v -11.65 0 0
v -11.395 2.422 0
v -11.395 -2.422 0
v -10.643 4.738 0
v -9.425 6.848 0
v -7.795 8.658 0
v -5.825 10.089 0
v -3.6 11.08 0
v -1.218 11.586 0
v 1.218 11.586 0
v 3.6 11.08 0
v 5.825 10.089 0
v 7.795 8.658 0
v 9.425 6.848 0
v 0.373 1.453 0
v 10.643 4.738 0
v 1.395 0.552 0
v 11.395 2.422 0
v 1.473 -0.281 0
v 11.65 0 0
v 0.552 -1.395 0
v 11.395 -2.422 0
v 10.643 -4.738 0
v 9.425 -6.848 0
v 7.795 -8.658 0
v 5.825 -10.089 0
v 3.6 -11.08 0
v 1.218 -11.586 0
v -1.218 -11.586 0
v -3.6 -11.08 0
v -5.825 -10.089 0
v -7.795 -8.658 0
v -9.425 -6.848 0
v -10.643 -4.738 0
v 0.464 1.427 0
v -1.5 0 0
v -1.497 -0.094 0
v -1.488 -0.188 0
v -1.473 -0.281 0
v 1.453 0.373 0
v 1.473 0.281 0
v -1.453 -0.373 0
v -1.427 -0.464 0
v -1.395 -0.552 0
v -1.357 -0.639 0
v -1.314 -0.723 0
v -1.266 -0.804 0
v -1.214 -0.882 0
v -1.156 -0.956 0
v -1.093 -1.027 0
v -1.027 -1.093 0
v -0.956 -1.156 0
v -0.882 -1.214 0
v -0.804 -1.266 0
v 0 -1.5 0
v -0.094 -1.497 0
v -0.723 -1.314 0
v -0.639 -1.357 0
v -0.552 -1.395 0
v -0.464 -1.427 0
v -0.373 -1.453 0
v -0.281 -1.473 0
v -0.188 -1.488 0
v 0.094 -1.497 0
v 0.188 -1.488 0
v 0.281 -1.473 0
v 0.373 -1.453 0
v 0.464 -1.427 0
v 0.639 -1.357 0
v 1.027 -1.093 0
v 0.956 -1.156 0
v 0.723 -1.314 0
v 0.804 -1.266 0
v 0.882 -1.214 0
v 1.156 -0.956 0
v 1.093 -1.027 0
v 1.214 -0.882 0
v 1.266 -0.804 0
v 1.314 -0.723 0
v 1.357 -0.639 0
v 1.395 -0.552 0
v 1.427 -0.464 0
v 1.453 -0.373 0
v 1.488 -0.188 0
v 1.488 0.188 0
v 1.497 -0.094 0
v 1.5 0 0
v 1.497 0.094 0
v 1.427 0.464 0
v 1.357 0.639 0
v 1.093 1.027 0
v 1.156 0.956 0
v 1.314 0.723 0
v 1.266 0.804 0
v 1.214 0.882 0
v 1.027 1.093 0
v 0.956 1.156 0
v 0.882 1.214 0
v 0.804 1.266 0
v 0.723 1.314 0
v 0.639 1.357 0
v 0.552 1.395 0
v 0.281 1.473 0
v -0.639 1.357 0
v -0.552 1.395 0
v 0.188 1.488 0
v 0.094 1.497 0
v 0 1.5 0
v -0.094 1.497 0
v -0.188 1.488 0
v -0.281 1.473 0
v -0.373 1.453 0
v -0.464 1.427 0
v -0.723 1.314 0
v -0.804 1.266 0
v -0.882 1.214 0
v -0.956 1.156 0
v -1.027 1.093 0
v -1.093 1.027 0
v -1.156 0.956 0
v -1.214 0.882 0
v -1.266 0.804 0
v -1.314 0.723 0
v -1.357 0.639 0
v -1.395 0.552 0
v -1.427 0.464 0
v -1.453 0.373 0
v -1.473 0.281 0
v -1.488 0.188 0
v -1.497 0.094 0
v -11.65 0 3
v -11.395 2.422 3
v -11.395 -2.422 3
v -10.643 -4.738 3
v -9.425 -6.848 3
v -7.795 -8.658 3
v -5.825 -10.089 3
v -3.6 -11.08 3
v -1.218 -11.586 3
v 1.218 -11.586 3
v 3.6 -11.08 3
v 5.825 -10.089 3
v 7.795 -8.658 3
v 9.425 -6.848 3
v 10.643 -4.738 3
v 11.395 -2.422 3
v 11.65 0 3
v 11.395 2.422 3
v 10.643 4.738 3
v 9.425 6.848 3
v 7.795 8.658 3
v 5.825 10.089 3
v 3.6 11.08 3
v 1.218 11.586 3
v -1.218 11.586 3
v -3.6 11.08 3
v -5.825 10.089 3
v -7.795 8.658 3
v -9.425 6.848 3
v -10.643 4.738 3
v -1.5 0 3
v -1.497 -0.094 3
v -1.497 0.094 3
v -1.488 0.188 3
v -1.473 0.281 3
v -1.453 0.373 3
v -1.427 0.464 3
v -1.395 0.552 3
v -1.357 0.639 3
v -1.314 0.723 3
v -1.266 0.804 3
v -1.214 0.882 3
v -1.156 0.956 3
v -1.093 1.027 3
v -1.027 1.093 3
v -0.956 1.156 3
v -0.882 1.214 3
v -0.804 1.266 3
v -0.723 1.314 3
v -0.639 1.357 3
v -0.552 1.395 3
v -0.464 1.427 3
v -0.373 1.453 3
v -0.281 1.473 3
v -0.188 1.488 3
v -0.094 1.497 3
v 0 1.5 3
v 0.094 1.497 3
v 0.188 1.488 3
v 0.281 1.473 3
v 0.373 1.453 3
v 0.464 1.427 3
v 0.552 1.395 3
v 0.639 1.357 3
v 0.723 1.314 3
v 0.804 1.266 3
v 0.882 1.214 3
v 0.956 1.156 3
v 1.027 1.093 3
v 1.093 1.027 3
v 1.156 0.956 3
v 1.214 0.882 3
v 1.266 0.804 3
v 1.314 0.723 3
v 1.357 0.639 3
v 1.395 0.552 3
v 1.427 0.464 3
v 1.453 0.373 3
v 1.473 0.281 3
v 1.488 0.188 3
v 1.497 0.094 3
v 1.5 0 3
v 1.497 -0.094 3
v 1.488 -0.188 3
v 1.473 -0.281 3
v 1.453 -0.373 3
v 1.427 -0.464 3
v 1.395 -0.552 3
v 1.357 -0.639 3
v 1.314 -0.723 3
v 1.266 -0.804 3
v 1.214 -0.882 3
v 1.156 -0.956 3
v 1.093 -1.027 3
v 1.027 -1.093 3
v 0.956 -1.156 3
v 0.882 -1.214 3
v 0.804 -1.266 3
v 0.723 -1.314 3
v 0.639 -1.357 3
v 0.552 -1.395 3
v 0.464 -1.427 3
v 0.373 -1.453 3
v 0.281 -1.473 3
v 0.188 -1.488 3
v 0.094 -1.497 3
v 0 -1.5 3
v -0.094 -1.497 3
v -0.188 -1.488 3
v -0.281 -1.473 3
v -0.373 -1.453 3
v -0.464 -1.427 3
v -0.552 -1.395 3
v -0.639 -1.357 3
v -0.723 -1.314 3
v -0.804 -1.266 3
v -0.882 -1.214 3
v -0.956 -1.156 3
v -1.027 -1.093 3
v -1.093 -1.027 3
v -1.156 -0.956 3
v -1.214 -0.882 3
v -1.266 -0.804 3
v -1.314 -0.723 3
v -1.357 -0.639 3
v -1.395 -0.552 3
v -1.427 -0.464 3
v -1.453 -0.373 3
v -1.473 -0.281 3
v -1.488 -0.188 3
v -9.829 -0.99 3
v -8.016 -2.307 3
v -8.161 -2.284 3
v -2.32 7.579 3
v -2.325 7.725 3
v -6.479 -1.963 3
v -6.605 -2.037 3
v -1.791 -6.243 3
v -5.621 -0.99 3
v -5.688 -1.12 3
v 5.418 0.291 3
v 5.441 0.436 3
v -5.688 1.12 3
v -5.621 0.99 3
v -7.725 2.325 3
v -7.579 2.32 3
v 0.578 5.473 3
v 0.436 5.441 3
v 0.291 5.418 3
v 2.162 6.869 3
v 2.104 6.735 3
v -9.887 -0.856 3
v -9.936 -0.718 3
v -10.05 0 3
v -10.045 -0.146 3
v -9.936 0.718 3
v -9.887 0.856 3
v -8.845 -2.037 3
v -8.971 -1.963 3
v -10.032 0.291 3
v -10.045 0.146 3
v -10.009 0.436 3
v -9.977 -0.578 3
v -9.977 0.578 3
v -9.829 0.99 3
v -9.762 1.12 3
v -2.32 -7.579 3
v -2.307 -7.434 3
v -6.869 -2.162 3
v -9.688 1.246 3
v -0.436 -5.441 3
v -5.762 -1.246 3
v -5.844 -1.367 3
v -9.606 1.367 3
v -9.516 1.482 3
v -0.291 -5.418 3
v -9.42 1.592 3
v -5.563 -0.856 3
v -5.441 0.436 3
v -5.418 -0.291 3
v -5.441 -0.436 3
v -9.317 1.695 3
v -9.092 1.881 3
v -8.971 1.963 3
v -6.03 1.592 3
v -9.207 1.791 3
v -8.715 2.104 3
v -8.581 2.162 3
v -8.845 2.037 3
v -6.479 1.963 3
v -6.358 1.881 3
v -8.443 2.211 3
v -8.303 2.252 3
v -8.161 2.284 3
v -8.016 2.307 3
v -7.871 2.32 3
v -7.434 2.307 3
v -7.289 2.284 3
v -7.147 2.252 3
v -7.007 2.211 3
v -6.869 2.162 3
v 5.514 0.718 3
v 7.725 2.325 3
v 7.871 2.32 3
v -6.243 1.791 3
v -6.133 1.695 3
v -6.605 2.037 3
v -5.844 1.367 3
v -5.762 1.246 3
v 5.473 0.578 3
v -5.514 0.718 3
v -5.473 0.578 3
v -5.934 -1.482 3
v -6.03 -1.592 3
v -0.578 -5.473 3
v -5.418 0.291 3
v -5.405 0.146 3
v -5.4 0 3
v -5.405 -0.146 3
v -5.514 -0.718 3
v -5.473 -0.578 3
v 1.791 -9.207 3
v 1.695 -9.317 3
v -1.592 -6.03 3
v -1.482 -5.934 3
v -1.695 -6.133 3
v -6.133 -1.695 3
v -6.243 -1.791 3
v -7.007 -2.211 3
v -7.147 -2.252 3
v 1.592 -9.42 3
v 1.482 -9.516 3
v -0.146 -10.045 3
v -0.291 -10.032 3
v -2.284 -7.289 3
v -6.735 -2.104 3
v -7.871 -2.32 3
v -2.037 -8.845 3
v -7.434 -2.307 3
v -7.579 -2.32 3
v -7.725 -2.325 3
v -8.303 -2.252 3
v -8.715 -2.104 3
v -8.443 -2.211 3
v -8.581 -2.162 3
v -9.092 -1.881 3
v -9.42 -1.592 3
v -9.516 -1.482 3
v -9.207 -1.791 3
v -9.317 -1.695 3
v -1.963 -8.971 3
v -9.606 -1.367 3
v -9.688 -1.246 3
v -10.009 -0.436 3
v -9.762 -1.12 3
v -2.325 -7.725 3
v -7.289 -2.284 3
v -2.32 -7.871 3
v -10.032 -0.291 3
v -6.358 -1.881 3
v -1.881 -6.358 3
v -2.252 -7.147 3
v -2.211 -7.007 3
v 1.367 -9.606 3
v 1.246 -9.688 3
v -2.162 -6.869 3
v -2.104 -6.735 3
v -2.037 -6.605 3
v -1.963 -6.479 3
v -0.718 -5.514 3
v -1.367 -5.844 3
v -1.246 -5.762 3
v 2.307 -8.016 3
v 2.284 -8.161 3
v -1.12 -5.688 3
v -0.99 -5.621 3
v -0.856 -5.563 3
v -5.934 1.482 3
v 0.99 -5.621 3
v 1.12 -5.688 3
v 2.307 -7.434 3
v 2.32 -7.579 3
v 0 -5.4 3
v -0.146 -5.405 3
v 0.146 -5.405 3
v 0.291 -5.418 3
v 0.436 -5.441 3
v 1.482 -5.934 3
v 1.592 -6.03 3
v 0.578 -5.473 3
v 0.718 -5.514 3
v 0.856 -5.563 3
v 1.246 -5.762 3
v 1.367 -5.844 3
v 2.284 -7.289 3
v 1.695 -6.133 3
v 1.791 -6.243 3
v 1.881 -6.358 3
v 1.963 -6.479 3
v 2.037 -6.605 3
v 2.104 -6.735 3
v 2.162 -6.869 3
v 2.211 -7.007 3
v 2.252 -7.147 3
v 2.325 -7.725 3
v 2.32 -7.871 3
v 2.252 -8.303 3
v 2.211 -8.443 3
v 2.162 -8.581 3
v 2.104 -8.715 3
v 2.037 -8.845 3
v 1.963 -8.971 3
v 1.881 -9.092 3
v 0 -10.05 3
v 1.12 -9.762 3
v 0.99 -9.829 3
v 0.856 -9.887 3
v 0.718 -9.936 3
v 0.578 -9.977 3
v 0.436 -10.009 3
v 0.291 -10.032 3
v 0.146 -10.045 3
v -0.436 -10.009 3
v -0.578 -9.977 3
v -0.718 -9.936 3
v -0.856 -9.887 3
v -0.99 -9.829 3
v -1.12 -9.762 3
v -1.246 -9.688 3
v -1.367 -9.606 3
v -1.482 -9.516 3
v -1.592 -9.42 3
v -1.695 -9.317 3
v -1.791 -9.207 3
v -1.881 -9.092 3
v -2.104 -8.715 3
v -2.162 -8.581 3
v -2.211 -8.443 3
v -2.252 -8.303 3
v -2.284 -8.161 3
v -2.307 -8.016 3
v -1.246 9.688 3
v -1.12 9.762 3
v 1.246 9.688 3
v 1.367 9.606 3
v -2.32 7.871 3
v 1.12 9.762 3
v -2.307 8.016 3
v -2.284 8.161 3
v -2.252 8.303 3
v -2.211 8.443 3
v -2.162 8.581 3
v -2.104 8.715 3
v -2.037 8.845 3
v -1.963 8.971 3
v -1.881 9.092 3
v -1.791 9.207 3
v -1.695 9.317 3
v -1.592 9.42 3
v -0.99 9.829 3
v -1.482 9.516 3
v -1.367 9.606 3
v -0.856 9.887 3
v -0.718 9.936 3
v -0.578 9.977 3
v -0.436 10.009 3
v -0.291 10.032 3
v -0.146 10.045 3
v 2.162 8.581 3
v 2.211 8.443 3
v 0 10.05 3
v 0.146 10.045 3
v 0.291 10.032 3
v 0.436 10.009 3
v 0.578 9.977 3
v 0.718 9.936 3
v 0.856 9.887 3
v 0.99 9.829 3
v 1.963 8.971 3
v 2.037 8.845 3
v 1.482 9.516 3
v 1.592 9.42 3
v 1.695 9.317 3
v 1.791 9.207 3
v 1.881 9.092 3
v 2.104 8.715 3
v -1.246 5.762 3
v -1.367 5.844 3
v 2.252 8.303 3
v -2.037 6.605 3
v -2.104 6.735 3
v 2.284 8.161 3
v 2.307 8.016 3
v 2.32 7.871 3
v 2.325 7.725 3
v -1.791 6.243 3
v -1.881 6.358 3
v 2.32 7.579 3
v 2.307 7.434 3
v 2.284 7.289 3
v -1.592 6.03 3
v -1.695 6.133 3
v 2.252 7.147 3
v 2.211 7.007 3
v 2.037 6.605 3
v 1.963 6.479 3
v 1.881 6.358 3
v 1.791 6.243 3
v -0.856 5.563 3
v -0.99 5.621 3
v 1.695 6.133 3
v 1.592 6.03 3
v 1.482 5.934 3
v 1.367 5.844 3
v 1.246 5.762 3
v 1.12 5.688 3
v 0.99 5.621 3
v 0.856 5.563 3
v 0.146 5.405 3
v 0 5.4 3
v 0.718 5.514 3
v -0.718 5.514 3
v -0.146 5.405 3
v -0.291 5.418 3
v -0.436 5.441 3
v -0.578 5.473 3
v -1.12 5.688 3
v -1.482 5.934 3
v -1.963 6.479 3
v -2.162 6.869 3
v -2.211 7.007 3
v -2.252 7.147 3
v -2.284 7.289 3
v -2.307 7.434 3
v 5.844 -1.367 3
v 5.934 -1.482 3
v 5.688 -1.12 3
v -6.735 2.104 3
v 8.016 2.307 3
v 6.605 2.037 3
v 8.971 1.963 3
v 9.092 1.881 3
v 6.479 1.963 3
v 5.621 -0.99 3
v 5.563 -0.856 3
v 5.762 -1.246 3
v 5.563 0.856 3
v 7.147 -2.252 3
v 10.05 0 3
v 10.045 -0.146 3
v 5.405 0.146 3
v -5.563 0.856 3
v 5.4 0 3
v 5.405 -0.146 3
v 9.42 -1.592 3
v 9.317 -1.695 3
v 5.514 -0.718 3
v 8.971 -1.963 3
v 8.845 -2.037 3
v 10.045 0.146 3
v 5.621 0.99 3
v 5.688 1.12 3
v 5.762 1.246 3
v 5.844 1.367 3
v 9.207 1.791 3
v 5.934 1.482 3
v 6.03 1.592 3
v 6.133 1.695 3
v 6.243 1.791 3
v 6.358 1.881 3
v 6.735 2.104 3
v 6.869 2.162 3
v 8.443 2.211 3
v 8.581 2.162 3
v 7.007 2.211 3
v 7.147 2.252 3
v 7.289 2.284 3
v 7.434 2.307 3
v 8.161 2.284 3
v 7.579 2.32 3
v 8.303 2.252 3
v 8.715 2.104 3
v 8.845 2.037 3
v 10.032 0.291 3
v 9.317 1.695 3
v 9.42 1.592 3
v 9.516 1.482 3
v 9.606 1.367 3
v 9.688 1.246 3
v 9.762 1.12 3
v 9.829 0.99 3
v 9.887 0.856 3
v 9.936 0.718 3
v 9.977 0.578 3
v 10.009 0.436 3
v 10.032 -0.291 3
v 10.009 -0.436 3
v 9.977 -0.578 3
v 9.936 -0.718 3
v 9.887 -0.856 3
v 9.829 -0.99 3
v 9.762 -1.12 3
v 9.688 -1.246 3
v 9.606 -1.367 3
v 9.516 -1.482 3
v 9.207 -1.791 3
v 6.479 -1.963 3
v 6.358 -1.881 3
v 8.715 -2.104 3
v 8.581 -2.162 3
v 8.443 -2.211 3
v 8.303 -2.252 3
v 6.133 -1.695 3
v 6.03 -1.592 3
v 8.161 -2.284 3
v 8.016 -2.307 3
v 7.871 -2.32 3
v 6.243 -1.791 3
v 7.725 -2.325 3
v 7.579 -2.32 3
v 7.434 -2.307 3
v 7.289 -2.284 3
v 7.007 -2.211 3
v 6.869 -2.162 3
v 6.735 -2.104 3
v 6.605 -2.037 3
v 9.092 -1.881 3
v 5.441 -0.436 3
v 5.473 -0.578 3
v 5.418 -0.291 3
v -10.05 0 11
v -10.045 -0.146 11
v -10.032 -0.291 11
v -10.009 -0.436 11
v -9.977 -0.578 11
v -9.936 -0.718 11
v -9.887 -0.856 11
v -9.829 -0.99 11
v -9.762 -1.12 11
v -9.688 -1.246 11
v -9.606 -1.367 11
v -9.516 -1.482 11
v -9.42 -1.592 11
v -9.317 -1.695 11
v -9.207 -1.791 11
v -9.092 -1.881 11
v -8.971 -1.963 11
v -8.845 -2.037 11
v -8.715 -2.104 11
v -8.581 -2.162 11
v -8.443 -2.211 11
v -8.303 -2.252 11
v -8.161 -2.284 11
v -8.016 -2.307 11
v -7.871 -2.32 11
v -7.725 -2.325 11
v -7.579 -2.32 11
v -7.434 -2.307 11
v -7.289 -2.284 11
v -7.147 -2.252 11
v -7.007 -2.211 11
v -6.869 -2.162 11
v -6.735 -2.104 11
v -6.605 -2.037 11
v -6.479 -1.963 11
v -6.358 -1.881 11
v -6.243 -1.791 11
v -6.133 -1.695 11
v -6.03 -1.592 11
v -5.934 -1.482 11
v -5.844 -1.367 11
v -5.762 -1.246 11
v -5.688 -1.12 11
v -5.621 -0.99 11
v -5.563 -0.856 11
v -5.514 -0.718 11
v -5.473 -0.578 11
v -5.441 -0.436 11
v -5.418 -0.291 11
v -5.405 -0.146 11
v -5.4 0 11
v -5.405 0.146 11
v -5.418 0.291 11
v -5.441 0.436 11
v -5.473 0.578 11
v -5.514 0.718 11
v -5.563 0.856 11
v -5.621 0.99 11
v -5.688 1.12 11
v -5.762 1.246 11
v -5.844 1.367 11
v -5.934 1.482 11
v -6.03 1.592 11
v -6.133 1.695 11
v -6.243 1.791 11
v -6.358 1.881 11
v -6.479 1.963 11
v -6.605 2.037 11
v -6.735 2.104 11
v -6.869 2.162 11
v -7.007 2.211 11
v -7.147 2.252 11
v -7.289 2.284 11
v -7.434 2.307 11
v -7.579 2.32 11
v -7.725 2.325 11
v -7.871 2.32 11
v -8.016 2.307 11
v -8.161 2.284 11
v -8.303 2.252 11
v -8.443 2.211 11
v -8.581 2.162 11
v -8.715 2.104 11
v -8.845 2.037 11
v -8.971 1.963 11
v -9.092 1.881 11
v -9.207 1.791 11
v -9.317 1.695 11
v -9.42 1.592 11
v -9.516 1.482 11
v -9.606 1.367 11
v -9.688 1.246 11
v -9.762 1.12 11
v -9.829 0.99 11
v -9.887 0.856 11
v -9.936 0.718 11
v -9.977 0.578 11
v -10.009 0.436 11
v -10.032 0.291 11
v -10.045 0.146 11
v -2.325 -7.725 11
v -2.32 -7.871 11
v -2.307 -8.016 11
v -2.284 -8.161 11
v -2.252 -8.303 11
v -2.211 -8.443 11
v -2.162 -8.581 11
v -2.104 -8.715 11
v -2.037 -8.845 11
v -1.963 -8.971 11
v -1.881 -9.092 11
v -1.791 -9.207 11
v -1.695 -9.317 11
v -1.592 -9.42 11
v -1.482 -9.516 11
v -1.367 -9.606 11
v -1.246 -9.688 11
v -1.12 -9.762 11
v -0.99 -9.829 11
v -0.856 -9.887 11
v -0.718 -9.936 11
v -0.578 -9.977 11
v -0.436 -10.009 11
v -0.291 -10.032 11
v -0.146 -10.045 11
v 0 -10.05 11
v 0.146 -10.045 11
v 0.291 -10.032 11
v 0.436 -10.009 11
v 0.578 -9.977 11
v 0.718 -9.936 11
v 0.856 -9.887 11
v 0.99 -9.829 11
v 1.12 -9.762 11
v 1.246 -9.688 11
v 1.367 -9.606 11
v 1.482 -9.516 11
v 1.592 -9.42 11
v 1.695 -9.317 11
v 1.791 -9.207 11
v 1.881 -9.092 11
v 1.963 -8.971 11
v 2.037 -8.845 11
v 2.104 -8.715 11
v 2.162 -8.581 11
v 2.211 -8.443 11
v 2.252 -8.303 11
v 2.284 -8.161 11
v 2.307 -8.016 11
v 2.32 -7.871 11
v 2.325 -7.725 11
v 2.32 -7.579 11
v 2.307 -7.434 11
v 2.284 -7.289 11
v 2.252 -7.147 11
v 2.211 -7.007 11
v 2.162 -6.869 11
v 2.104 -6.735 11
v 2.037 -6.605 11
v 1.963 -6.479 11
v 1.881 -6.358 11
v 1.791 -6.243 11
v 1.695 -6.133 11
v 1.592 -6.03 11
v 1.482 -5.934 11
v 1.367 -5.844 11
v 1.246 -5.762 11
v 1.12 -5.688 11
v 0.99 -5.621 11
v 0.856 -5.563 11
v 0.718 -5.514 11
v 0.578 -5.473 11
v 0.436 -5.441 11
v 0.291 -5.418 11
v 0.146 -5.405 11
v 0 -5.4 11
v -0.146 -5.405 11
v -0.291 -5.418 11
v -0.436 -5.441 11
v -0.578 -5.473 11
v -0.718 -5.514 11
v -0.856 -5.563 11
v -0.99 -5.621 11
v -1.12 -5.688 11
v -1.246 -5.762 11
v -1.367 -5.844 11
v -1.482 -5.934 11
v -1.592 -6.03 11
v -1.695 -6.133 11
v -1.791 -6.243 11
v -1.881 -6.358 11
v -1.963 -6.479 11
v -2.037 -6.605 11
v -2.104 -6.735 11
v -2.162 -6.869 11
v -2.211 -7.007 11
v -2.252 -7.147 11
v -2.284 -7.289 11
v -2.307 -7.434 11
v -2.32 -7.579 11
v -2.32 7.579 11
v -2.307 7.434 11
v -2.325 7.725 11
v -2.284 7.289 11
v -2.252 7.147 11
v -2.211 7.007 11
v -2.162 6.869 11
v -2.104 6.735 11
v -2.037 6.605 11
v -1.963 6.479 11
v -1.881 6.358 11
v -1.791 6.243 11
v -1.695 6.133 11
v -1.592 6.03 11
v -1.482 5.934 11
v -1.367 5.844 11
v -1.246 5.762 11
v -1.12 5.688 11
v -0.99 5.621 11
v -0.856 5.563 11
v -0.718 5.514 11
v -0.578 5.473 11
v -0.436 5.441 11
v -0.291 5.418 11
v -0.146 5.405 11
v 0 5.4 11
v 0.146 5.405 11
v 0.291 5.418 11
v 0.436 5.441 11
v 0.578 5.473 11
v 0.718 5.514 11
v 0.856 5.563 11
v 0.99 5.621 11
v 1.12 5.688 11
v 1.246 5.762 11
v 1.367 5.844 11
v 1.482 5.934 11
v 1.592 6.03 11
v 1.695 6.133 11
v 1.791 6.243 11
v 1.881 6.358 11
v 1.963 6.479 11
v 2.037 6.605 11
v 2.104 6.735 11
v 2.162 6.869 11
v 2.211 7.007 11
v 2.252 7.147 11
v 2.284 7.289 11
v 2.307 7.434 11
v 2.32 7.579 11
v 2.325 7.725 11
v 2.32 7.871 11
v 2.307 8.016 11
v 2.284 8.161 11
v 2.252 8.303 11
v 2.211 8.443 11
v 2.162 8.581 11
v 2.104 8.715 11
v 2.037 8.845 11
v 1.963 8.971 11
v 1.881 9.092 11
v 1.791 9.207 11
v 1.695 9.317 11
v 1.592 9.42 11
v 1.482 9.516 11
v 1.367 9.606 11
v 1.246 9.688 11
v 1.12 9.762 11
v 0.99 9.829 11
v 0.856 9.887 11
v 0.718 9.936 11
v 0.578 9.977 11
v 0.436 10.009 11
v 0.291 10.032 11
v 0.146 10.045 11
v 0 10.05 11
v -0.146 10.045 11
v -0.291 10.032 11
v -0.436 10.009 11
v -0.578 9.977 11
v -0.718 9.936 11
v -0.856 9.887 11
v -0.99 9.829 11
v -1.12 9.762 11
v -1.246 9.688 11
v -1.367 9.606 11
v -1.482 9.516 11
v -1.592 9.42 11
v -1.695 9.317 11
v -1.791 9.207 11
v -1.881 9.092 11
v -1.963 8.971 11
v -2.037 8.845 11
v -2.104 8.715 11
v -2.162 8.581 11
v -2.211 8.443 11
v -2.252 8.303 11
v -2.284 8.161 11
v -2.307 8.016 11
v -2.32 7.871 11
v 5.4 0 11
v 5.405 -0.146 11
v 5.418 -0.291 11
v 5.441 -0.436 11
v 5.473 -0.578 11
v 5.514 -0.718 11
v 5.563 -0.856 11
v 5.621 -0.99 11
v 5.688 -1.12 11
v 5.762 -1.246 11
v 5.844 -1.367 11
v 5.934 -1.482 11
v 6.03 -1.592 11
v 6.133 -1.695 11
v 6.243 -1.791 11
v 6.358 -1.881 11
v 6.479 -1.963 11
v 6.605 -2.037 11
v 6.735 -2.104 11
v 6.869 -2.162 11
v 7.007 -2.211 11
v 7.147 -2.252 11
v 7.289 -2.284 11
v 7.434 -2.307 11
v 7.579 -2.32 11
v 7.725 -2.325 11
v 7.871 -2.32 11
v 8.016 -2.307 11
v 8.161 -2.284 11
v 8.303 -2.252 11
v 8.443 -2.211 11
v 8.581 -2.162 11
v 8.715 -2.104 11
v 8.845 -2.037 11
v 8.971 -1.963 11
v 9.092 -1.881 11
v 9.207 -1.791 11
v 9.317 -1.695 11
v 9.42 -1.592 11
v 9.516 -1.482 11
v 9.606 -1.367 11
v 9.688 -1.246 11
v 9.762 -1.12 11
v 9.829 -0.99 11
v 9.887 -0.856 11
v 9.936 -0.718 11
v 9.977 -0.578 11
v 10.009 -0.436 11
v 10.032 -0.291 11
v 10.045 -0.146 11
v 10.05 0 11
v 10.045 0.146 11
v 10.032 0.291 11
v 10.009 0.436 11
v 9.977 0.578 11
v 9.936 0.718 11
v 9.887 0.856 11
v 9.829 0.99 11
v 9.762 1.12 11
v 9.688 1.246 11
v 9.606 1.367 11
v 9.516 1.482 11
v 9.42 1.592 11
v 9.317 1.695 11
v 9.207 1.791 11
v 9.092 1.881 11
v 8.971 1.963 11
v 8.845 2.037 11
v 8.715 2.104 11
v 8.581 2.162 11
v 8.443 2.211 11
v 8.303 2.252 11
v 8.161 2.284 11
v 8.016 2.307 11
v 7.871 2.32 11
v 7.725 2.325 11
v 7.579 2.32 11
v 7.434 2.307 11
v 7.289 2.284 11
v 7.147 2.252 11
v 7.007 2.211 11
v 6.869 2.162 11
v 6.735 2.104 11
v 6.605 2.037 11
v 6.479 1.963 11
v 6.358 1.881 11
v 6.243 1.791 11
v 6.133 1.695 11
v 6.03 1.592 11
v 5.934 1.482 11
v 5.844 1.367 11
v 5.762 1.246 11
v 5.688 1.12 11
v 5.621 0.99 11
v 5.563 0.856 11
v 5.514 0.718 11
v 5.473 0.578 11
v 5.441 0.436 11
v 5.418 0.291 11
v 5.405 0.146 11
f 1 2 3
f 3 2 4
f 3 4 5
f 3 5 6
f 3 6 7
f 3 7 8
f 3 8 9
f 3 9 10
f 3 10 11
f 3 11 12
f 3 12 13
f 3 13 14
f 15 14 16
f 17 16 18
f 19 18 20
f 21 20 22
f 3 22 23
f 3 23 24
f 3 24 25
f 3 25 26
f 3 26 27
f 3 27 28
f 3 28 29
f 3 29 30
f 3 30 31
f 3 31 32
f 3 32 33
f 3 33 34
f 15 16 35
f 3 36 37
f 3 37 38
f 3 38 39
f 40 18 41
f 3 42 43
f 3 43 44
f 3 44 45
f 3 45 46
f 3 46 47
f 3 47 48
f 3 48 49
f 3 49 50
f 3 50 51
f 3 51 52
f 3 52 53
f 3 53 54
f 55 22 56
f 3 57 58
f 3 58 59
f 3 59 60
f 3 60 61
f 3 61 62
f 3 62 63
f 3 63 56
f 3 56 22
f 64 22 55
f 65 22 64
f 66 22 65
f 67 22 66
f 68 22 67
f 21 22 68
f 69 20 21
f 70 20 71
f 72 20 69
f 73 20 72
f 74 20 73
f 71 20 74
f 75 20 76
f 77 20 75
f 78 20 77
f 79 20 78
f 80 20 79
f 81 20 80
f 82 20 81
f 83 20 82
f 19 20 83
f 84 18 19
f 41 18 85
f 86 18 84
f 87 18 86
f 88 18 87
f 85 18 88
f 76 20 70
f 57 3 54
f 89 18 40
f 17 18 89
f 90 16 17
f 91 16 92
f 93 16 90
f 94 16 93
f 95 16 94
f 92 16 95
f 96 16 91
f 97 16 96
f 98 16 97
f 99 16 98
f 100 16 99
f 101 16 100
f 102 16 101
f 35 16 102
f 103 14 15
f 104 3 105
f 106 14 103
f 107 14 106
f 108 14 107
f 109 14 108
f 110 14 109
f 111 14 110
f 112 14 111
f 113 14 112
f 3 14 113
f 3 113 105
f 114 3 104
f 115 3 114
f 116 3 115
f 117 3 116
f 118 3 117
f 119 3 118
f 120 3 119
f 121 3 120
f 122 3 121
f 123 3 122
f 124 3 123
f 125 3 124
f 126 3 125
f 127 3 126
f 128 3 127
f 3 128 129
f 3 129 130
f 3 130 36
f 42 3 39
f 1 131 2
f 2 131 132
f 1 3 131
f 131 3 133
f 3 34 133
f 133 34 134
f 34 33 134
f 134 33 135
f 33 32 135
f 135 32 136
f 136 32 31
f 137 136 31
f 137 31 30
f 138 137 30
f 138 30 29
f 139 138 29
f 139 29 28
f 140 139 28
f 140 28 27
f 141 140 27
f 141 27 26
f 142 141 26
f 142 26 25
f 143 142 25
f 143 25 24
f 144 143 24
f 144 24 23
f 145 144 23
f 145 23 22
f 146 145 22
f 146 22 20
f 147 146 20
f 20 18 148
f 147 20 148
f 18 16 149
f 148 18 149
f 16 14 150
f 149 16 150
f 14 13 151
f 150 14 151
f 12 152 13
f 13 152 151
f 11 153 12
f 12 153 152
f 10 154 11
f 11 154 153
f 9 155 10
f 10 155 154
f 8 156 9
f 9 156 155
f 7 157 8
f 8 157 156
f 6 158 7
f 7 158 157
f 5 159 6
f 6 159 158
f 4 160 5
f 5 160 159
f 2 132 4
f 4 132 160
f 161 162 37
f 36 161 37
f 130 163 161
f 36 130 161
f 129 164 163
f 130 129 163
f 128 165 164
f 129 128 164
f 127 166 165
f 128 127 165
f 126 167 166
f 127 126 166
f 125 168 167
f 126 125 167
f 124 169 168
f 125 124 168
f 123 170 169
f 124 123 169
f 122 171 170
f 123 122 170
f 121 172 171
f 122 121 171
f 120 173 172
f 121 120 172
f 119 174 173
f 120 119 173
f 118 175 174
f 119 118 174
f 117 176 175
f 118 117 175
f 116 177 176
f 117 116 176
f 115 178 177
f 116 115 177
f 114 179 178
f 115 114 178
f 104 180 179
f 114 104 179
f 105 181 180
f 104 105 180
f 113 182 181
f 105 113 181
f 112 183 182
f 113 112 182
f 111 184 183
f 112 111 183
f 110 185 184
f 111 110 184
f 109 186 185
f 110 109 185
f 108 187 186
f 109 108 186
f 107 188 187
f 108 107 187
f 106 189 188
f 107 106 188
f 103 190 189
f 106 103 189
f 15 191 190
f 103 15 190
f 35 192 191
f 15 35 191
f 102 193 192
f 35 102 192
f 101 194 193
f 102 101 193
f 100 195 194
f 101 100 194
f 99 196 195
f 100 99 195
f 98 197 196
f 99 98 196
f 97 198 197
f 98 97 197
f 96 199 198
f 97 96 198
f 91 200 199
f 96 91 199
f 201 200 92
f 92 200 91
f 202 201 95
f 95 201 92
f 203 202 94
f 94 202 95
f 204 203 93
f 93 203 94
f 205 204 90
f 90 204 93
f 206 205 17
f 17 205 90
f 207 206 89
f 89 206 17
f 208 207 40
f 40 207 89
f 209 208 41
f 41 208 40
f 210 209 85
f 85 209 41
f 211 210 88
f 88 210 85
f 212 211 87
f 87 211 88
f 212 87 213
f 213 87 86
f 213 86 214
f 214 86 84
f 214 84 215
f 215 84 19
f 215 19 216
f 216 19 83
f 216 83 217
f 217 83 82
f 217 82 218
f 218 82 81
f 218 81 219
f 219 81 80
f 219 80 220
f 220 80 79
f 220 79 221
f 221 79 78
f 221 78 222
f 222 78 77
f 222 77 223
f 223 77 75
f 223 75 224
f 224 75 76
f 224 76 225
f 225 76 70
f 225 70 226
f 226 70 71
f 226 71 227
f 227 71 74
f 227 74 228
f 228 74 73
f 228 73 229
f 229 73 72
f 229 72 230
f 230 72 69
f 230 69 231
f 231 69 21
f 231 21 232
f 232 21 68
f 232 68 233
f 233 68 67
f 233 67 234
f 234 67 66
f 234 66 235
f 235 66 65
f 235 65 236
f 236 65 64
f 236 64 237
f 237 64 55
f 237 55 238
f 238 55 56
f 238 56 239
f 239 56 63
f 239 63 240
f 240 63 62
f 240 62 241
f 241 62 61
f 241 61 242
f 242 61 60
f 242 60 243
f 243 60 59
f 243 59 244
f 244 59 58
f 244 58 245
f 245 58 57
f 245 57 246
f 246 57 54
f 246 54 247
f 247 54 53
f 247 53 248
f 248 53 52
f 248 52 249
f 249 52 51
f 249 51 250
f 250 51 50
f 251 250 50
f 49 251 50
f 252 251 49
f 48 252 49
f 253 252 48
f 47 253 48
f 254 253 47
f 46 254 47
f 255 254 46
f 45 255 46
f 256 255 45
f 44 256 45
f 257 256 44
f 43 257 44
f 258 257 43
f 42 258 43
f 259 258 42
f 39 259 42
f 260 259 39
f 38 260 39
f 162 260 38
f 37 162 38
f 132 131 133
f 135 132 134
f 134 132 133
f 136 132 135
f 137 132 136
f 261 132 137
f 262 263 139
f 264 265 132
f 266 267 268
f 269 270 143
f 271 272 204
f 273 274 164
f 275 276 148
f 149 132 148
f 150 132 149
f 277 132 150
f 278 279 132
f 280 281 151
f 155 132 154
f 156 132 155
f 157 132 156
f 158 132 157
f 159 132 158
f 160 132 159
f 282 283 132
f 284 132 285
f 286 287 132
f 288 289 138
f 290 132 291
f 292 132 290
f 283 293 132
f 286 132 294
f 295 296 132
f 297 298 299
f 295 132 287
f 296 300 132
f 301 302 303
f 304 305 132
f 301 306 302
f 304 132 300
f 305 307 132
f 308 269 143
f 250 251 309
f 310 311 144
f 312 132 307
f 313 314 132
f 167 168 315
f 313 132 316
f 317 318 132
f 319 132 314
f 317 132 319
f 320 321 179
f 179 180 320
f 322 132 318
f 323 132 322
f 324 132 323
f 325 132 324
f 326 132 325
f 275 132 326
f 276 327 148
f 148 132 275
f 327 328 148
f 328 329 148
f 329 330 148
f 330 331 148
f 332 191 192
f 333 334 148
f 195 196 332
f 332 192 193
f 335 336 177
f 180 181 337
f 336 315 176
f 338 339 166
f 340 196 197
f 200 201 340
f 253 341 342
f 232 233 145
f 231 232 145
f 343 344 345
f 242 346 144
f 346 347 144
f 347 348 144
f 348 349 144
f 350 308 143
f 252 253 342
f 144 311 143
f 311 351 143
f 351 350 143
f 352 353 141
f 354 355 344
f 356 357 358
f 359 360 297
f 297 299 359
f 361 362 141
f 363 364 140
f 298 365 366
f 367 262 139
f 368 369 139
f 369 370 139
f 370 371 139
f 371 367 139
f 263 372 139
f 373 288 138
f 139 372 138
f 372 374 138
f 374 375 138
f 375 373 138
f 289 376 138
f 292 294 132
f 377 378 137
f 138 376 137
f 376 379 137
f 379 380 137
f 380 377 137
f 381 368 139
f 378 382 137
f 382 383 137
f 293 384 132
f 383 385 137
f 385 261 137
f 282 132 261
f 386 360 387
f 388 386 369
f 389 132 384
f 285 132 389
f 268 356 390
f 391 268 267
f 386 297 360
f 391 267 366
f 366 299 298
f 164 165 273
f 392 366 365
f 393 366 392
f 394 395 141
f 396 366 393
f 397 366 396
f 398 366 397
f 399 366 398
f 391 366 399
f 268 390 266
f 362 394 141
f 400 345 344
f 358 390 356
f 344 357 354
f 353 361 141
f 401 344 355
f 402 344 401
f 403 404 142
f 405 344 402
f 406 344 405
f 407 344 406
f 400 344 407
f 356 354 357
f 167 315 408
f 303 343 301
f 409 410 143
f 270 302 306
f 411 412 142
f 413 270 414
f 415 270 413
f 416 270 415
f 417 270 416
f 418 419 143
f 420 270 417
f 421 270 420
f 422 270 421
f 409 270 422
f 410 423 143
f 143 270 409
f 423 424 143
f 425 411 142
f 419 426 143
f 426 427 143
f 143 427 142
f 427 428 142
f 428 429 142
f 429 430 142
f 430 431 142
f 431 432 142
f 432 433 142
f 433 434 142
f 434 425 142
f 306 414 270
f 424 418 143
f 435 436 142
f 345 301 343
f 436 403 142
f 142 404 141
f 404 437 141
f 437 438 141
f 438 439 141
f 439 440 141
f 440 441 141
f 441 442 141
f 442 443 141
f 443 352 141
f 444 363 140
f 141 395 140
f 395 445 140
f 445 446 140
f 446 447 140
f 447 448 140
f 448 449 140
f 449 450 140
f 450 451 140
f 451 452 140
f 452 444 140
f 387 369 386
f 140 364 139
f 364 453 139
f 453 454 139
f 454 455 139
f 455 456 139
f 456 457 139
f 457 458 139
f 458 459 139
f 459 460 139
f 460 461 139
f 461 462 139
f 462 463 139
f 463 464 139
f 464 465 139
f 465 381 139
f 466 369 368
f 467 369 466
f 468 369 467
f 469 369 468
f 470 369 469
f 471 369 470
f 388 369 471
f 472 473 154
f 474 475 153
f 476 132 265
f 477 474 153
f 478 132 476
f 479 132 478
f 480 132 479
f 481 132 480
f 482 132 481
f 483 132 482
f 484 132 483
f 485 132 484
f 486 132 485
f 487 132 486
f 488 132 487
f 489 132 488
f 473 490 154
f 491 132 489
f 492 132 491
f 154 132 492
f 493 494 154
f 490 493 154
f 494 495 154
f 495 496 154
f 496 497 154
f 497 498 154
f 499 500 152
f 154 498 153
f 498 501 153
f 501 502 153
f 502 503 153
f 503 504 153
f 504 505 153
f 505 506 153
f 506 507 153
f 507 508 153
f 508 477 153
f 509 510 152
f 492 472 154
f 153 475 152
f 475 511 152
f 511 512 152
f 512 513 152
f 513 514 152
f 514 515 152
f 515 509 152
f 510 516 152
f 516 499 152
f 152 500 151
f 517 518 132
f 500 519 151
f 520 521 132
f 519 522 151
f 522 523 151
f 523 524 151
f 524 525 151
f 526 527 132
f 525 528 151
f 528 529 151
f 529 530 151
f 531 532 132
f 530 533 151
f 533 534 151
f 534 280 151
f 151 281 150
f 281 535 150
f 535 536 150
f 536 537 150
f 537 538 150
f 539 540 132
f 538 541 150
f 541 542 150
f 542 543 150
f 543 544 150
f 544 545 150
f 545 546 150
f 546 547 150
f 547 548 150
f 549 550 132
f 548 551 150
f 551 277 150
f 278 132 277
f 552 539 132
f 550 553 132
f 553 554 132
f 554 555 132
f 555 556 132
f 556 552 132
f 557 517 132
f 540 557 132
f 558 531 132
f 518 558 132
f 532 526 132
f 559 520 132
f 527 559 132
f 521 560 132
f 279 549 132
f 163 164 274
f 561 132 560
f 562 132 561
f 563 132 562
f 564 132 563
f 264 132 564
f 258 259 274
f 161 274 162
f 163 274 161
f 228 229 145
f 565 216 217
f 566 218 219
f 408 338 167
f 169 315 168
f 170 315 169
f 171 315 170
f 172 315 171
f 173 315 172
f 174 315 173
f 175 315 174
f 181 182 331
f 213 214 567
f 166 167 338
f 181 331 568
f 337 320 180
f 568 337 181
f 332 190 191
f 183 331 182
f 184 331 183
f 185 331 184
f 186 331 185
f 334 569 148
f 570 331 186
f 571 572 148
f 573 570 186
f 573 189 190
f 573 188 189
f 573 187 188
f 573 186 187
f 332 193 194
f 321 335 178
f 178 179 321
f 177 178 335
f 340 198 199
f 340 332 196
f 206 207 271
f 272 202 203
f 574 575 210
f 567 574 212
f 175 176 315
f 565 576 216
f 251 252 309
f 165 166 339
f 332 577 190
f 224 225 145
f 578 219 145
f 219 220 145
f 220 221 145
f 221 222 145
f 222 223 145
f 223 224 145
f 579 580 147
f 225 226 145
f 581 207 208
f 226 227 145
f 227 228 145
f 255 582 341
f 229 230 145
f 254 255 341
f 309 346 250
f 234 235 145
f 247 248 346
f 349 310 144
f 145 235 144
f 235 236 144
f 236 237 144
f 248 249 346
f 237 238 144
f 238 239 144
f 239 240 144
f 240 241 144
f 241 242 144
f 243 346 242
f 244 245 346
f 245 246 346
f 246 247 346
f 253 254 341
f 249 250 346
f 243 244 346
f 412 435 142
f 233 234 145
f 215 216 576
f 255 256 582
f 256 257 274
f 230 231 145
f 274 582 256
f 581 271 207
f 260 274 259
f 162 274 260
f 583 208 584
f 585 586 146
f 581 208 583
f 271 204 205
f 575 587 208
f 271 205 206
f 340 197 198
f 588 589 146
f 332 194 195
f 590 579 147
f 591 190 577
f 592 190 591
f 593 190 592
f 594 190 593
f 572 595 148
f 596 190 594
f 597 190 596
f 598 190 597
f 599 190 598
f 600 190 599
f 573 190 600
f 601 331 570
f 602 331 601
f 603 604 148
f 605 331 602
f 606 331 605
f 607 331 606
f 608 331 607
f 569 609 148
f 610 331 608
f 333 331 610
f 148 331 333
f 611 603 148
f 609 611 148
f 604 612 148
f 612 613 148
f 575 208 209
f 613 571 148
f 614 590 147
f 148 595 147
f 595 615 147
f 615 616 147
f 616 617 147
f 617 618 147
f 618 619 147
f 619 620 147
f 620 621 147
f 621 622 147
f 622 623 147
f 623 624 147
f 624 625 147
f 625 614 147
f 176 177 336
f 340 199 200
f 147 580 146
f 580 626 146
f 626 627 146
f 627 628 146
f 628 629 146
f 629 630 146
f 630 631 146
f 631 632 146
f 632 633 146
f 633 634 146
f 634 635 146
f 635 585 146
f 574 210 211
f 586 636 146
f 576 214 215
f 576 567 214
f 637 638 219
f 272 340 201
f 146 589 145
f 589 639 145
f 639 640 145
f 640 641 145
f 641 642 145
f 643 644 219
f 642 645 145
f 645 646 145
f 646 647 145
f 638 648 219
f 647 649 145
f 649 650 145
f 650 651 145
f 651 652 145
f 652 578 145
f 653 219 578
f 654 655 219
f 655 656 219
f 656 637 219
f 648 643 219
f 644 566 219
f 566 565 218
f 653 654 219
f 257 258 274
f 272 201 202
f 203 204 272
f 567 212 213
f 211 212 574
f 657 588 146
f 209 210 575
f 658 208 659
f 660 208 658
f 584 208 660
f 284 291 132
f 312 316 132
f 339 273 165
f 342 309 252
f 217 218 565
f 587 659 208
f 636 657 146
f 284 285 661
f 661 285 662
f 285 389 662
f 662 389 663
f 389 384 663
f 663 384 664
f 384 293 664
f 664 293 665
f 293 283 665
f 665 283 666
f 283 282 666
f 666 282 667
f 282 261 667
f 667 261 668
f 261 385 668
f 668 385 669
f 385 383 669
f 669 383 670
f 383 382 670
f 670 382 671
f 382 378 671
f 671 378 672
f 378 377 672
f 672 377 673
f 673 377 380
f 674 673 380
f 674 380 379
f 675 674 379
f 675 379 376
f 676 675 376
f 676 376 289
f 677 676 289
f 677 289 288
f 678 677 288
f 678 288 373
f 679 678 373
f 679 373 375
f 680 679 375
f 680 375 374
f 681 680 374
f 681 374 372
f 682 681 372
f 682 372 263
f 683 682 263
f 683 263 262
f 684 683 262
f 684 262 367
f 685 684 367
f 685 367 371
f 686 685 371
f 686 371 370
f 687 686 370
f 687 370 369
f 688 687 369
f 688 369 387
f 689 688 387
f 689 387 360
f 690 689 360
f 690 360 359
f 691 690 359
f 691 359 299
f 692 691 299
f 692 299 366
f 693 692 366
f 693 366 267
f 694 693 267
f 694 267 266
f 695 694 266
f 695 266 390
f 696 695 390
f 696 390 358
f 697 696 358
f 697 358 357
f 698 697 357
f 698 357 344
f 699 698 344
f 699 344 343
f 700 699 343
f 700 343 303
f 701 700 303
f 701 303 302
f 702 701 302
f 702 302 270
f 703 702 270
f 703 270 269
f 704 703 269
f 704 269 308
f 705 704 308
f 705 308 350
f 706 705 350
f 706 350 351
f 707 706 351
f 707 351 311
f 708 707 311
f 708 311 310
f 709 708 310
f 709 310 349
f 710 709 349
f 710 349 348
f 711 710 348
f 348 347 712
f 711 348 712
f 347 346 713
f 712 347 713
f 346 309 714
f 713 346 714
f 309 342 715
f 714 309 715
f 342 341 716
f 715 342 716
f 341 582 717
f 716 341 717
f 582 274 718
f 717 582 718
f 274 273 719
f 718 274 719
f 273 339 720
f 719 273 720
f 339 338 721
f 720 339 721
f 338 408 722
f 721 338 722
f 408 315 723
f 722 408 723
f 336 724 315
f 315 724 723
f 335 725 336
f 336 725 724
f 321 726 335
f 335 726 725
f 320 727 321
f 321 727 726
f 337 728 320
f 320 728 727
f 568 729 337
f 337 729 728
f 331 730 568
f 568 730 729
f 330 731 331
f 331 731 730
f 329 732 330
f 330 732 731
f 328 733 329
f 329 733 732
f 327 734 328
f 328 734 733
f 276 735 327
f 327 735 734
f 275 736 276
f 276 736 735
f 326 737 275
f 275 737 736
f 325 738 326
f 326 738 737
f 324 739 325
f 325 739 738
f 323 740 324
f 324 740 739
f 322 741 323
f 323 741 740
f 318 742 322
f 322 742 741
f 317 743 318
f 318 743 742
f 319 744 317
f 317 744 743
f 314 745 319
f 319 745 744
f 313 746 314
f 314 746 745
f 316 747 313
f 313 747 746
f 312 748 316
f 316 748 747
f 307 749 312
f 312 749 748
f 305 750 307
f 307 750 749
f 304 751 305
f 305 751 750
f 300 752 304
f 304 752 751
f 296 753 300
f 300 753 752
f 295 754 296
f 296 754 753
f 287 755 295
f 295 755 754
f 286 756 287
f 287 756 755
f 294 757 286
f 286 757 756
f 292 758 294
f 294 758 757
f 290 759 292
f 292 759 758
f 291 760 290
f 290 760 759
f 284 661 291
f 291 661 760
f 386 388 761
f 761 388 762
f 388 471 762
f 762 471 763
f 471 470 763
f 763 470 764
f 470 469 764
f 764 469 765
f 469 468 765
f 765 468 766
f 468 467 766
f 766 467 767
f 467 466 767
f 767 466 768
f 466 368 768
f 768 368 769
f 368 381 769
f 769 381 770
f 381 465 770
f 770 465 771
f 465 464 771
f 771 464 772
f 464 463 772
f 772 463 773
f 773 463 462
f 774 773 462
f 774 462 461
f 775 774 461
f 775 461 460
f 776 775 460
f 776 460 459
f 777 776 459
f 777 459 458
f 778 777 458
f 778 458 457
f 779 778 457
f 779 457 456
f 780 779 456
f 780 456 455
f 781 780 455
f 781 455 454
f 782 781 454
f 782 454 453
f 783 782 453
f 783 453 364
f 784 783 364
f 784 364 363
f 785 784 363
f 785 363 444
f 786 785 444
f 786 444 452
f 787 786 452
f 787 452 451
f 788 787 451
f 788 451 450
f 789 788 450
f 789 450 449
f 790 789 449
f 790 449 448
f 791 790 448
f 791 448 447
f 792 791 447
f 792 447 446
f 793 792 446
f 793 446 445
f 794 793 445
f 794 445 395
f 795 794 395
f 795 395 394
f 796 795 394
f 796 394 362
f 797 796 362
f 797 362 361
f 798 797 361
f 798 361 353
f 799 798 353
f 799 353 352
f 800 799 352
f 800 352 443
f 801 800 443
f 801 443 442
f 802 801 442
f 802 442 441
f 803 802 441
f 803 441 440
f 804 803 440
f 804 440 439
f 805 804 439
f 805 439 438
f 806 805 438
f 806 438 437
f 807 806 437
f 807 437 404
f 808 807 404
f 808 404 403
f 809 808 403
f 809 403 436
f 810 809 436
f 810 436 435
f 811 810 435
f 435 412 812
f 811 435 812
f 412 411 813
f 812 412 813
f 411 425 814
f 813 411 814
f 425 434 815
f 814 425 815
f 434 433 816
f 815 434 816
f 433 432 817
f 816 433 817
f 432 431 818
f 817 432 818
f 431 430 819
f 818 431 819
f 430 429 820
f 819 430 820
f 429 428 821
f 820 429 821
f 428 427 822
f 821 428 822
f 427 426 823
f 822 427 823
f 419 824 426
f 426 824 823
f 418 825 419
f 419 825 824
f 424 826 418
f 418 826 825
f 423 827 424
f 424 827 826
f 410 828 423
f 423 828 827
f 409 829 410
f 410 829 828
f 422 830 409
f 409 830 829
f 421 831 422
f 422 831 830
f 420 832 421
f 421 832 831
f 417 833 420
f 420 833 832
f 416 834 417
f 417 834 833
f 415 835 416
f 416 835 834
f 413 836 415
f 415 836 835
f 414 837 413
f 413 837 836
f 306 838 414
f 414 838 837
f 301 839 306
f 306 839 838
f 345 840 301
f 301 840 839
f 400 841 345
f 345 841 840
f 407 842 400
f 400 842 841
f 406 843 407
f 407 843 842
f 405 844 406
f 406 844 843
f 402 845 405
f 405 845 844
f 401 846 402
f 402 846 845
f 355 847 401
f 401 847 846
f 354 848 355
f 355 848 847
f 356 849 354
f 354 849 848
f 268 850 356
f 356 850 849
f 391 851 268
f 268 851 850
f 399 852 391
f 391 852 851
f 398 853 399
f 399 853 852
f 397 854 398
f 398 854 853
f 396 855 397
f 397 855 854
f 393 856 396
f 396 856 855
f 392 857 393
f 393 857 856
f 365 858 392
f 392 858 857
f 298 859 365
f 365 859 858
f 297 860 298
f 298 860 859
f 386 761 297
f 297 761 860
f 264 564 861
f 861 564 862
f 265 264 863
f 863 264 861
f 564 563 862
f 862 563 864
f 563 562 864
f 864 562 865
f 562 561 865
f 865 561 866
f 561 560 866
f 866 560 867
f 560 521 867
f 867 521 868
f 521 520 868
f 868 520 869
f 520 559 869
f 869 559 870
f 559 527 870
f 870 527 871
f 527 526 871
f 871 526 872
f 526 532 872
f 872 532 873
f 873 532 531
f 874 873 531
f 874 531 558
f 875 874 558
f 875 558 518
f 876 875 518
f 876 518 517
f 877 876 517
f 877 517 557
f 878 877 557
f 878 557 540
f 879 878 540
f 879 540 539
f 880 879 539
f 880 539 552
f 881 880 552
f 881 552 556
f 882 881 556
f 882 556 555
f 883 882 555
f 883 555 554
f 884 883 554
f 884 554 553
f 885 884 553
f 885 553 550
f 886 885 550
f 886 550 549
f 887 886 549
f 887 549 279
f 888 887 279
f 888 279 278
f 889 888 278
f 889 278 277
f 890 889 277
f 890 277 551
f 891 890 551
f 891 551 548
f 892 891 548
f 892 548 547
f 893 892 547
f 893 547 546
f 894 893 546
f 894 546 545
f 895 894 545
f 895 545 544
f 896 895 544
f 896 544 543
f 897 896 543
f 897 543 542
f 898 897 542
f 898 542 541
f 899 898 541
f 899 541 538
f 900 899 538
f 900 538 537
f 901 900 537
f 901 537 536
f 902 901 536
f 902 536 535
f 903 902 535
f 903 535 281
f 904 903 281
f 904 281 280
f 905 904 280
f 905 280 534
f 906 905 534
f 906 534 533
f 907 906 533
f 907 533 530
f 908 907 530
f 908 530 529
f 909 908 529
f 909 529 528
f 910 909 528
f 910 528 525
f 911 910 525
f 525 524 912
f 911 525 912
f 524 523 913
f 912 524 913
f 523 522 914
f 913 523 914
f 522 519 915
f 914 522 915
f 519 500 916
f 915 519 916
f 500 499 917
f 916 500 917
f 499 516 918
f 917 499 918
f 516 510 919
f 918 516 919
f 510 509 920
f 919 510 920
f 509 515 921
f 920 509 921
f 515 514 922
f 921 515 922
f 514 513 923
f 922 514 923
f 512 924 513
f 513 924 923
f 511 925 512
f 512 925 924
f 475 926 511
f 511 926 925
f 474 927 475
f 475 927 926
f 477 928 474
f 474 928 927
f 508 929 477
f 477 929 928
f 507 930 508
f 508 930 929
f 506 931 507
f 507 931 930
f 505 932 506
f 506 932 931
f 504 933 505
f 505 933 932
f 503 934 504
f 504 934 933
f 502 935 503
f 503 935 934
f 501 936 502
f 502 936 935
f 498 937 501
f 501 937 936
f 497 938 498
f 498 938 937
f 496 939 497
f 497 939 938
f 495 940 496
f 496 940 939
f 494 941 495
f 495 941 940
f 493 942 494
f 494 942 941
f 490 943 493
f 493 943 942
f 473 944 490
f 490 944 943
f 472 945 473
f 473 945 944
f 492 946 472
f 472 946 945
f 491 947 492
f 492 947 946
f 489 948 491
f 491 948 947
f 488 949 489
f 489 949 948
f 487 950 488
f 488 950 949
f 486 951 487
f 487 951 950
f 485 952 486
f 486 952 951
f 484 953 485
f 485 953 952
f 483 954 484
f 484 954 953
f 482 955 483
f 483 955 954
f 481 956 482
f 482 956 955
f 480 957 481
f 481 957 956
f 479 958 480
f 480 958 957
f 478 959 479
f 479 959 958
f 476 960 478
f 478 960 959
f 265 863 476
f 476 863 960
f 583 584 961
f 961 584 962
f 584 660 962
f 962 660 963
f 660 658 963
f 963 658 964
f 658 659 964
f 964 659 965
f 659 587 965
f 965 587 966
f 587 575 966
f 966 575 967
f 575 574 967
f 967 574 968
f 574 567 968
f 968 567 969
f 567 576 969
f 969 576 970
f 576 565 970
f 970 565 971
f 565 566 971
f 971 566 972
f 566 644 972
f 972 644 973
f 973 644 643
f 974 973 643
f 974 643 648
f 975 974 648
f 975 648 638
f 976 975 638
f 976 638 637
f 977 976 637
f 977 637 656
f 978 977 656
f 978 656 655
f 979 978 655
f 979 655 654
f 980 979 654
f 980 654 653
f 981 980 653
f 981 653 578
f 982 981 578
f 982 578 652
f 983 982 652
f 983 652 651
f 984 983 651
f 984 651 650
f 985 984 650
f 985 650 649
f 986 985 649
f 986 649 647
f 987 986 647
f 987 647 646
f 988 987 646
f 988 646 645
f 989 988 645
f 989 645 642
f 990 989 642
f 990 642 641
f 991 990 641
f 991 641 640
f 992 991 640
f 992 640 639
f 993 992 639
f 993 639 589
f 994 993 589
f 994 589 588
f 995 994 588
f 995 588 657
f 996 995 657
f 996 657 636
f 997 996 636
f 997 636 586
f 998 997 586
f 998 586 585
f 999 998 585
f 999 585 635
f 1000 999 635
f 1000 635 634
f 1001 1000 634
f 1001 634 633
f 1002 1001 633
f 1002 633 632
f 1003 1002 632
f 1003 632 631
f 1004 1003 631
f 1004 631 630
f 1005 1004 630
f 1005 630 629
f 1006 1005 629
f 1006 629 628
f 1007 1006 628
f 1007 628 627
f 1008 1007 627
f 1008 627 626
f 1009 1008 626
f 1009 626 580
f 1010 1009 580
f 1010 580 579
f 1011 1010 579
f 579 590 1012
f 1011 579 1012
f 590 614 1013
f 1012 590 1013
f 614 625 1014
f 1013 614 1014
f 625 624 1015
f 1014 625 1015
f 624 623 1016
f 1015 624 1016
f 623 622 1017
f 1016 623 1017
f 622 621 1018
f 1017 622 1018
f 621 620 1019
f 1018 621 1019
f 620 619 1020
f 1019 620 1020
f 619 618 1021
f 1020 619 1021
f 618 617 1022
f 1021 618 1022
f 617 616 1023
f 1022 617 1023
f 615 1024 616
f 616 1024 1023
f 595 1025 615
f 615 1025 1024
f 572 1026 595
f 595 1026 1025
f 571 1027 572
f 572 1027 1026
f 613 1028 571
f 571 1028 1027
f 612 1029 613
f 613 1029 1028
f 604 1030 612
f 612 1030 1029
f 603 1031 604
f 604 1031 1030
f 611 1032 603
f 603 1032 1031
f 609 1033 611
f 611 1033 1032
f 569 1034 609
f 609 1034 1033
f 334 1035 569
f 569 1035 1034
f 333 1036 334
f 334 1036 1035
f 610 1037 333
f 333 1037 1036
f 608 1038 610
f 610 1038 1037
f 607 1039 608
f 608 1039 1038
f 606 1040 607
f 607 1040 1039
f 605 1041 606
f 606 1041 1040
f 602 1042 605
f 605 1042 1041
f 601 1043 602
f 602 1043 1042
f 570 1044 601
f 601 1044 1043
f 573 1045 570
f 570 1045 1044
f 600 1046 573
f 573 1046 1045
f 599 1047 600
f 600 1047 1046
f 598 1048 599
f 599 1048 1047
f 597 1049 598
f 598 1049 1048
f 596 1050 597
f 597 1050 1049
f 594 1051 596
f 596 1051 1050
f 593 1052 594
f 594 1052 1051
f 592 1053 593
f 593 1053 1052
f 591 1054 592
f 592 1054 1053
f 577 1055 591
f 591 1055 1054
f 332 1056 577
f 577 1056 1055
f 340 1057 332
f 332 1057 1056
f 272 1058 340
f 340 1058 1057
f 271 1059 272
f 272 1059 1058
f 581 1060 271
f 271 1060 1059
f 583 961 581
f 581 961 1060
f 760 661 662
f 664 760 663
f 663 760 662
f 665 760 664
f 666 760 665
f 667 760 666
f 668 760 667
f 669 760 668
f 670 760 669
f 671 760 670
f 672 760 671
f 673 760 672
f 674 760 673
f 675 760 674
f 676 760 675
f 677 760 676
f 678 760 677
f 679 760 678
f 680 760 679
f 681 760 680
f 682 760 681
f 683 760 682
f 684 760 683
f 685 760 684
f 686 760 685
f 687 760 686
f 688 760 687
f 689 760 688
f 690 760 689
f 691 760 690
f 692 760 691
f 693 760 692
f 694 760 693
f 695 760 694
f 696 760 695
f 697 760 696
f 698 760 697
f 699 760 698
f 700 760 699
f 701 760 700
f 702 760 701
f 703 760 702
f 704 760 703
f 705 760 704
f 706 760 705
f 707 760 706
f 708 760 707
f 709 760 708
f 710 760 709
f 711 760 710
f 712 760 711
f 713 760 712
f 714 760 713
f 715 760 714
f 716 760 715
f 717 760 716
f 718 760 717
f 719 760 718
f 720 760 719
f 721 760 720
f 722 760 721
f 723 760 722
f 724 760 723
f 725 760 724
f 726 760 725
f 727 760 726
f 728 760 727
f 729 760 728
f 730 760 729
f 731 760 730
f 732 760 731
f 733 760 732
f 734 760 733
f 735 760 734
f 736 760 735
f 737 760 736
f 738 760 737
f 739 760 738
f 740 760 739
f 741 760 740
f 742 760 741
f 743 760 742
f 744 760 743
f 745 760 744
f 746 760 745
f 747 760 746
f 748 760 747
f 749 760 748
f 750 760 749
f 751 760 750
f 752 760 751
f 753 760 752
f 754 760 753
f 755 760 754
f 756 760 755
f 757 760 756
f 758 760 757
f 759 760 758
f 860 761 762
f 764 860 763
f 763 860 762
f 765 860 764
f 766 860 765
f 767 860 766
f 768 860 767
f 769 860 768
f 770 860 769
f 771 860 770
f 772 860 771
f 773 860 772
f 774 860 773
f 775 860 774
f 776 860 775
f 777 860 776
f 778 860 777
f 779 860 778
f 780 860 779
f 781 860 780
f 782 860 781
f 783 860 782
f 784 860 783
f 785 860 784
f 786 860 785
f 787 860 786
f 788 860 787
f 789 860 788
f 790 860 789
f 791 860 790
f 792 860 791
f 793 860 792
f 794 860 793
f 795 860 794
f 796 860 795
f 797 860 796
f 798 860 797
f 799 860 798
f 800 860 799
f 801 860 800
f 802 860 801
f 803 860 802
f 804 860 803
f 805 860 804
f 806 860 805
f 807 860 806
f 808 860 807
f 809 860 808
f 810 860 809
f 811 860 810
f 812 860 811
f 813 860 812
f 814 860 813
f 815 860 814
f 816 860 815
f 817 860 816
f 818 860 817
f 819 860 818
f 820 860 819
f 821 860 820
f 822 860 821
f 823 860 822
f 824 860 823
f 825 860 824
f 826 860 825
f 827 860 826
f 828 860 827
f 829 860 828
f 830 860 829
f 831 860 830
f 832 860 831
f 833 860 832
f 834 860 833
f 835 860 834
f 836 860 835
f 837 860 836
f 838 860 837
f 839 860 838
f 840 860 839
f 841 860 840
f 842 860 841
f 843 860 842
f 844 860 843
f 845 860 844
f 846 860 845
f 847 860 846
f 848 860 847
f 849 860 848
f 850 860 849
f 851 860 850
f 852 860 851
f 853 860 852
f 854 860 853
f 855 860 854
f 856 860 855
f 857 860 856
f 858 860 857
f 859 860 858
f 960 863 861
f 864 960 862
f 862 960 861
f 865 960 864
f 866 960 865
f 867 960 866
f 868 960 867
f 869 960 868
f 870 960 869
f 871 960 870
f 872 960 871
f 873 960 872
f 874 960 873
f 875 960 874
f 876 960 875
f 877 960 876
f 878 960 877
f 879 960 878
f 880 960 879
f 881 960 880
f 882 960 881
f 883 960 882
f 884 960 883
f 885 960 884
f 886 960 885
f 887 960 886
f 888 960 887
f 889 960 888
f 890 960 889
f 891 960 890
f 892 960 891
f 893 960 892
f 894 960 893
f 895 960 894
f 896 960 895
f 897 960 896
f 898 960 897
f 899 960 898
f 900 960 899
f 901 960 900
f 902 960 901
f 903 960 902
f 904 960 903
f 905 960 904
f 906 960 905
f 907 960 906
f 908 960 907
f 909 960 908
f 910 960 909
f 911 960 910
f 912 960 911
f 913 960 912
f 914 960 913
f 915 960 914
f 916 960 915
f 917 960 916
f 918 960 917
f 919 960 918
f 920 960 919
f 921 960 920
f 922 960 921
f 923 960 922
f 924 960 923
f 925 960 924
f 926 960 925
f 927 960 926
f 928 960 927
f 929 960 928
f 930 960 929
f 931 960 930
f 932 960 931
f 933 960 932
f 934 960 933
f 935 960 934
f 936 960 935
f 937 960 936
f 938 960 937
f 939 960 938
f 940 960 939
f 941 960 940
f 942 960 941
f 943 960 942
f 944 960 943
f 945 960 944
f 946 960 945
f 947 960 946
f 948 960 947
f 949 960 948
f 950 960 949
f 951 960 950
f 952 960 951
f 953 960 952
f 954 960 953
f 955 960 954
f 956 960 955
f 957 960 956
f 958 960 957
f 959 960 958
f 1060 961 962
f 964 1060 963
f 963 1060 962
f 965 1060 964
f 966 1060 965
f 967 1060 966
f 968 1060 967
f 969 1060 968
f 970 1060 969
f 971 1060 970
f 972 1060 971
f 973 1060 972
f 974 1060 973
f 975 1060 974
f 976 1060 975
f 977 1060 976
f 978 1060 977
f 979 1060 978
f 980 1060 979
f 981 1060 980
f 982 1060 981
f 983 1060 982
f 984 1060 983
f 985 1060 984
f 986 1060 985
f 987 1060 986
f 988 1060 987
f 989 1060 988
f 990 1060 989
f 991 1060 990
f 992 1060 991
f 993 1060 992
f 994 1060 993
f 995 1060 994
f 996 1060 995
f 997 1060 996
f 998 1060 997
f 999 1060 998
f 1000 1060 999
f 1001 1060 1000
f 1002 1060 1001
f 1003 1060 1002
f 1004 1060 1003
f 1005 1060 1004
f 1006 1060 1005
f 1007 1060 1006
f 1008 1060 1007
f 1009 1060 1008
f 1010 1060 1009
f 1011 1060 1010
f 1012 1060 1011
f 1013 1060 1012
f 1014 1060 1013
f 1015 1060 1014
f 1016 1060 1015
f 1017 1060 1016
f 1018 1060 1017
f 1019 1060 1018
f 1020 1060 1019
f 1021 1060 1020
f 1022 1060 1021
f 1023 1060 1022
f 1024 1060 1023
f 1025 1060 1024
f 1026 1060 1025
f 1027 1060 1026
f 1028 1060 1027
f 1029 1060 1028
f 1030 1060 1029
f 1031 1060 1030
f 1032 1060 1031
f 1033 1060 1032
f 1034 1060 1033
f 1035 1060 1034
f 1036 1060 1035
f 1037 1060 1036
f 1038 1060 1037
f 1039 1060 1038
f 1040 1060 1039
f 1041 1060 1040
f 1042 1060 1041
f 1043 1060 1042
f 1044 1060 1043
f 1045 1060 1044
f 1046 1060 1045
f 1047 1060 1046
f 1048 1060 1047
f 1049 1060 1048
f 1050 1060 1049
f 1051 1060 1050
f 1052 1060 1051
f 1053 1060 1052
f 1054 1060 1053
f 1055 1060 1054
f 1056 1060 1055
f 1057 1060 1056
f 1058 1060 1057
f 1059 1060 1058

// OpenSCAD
h_cylinder = 3;
h_peripherical_legs = 11;
radius_peripherical_legs = 2.325;
radius_central_hole = 1.5;
radius_cylinder = 11.65;
marginal_distance = 1.6;
per_leg_trans = radius_cylinder-radius_peripherical_legs-marginal_distance;

module motor_cap() {
	difference() {
		union() {
		// Main cylinder
		cylinder(h = h_cylinder, r = radius_cylinder, center = false);	

		// Peripherical legs
		translate([per_leg_trans, 0, 0]) color("black") cylinder(h = h_peripherical_legs, r = radius_peripherical_legs, center = false, $fn = 100);
		translate([-per_leg_trans, 0, 0]) color("black") cylinder(h = h_peripherical_legs, r = radius_peripherical_legs, center = false, $fn = 100);
		translate([0, per_leg_trans, 0]) color("black") cylinder(h = h_peripherical_legs, r = radius_peripherical_legs, center = false, $fn = 100);
		translate([0, -per_leg_trans, 0]) color("black") cylinder(h = h_peripherical_legs, r = radius_peripherical_legs, center = false, $fn = 100);
		}
		// Central hole
		cylinder(h = h_cylinder, r = radius_central_hole, center = false, $fn = 100);
	}
}

 motor_cap();
